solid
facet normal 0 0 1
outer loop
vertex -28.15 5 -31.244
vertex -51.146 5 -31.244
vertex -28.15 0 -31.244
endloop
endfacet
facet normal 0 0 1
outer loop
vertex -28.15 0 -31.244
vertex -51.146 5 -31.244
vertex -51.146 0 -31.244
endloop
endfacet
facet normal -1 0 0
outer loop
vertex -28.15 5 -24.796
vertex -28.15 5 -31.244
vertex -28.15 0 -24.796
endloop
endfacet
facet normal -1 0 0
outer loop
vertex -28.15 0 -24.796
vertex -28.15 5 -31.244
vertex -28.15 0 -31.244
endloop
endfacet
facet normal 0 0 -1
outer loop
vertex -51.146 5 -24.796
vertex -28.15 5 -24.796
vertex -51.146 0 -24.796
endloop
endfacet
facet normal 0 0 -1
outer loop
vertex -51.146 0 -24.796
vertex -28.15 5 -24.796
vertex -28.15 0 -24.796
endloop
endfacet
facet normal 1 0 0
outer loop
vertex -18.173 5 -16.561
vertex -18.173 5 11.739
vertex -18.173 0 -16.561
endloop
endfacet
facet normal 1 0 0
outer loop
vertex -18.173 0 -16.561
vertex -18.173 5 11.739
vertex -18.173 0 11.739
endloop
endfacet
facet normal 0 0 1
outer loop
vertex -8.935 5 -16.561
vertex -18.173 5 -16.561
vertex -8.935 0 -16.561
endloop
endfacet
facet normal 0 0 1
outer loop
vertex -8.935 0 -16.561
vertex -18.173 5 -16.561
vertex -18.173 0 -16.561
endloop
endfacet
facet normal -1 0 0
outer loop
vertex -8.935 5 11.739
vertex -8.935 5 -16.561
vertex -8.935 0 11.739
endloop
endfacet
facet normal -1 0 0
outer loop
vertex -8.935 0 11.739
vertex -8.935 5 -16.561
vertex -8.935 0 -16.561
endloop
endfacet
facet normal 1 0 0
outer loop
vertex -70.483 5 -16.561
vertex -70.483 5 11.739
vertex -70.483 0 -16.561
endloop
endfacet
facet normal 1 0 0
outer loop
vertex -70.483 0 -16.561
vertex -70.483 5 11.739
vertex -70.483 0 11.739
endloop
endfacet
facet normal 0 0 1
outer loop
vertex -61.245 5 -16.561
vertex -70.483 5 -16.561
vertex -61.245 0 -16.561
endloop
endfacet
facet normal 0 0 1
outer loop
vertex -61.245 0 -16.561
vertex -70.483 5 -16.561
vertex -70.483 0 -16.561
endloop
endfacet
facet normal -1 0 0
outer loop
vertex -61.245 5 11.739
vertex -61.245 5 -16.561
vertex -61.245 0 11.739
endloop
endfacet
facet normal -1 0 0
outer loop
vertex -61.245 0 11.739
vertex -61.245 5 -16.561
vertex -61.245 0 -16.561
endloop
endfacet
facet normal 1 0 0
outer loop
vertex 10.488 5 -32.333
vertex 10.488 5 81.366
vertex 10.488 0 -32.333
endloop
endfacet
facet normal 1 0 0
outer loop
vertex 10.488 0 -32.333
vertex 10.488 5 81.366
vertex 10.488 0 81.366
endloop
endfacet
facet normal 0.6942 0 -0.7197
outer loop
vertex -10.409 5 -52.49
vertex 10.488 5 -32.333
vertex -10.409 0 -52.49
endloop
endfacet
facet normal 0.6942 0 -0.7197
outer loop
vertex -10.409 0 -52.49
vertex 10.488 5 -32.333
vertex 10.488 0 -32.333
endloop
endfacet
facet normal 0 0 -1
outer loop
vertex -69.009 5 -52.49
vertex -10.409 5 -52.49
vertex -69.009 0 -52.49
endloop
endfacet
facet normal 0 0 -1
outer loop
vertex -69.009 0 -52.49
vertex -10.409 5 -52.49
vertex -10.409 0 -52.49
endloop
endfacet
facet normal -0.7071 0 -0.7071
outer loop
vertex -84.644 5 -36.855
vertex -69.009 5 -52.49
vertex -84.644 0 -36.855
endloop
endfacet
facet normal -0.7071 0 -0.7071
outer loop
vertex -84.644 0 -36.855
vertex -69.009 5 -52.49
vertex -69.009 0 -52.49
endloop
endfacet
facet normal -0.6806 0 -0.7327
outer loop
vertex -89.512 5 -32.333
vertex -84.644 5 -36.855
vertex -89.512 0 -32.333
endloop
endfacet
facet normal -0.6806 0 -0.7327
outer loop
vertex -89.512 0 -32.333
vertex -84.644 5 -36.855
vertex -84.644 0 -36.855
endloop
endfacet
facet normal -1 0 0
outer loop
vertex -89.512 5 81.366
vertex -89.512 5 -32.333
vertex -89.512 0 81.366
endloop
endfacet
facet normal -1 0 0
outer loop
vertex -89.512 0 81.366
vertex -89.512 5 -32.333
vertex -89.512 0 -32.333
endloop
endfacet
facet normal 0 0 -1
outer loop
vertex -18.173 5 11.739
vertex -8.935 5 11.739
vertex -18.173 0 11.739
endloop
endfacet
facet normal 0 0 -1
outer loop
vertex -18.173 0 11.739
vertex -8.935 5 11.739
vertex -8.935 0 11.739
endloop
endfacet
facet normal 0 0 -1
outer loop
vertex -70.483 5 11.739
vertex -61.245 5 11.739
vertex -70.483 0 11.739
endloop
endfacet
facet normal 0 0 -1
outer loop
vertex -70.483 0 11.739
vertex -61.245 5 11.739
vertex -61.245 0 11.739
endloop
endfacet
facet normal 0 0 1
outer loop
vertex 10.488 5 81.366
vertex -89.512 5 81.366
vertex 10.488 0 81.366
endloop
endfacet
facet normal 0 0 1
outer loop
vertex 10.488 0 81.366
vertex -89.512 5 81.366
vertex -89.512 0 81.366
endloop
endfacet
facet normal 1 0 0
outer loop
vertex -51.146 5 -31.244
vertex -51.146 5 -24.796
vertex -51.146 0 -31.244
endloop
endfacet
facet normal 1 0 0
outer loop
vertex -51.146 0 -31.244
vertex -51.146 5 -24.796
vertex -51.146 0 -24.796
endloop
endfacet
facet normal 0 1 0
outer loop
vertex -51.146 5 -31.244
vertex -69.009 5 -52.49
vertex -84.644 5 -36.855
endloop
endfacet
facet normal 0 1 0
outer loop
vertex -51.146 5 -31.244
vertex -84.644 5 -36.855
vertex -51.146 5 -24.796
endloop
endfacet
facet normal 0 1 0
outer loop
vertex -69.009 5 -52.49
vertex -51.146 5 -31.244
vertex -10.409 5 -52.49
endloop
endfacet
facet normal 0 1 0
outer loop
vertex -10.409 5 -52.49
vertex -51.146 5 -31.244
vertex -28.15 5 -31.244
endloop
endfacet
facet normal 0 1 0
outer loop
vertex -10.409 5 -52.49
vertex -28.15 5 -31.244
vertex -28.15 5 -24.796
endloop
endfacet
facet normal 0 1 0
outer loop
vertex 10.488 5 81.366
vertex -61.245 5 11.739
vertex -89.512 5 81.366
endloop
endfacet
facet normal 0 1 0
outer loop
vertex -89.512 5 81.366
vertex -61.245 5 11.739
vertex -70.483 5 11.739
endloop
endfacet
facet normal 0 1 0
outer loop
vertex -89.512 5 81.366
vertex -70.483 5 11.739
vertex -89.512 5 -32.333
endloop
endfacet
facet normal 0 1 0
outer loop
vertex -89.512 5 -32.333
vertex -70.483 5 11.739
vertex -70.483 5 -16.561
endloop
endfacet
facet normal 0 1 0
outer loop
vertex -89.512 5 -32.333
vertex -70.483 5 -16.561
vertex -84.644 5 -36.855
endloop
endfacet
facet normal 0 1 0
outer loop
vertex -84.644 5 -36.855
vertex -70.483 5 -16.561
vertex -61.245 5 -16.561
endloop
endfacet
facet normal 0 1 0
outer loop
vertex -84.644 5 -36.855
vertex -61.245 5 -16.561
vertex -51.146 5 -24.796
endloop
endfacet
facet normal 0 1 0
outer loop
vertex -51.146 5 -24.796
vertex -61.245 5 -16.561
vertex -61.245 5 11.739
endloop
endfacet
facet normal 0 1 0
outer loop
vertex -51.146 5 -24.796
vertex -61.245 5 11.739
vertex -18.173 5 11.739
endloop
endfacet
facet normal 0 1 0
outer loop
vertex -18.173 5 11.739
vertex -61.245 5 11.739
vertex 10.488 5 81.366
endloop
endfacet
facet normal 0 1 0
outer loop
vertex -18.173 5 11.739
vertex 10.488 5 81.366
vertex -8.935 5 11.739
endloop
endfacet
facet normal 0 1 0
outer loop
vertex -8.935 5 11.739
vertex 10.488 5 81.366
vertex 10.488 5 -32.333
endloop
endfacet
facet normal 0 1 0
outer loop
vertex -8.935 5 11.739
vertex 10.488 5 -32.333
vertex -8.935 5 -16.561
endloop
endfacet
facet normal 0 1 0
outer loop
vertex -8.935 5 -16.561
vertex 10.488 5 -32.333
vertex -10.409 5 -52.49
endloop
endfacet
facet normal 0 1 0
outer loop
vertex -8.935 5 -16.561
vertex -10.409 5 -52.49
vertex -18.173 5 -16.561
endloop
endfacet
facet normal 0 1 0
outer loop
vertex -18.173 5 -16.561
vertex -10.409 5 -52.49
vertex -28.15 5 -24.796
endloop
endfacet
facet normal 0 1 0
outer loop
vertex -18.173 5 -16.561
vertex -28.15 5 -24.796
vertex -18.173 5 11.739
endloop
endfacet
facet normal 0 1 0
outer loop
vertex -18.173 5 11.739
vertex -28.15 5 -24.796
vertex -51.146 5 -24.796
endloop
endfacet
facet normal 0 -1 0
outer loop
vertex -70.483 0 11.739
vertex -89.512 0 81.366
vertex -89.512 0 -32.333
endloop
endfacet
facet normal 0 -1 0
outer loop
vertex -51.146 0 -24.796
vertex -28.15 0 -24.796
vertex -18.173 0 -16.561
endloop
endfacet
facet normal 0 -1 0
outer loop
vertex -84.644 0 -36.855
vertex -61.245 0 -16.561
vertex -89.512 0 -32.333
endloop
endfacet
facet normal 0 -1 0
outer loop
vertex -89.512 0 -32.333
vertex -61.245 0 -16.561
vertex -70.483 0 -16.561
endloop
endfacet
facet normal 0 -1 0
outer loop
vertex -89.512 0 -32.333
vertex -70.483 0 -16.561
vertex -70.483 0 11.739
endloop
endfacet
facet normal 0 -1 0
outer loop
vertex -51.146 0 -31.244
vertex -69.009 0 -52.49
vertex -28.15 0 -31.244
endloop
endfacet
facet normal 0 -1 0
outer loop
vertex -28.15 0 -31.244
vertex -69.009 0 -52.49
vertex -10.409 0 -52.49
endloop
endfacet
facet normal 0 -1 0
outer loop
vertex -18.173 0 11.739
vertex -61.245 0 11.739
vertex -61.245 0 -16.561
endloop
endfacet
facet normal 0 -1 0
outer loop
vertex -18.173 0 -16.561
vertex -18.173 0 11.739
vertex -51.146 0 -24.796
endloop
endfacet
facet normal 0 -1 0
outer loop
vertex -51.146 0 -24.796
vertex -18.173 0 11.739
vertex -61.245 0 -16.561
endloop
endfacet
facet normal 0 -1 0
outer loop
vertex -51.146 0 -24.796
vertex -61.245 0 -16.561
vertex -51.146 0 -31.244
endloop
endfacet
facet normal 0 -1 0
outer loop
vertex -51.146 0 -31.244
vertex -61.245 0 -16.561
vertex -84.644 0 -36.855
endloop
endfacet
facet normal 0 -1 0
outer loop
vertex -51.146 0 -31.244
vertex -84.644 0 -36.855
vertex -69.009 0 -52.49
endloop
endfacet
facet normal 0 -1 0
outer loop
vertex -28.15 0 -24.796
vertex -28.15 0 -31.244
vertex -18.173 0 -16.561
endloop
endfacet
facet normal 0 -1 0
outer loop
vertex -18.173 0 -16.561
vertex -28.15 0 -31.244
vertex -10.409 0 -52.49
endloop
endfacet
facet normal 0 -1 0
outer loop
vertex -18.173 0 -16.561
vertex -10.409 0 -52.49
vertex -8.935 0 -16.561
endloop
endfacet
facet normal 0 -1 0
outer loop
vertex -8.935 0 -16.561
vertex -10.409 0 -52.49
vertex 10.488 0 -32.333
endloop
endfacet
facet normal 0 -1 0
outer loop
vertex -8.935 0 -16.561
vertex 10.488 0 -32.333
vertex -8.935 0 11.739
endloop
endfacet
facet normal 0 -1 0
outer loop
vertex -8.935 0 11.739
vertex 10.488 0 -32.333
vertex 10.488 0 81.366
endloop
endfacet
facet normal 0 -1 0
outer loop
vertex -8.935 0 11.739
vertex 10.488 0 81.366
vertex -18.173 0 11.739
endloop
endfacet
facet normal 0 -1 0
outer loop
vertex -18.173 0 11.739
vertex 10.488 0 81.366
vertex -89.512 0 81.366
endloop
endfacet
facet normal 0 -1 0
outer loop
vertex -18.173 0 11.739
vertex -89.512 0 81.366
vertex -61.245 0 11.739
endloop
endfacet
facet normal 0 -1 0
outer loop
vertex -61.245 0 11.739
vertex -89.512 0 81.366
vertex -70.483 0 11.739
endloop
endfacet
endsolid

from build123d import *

# Parameters (mm, degrees)
SKETCH1_W           = 9.23810595
SKETCH1_H           = 28.3
SKETCH1_W_2         = 22.995276356
SKETCH1_H_2         = 6.447183695
BOSS_EXTRUDE1_DEPTH = 5


with BuildPart() as part:
    # Sketch1 → Boss-Extrude1 (new body)
    with BuildSketch(Plane(origin=(0, 0, 0), x_dir=(1, 0, 0), z_dir=(0, 1, 0))):
        Polygon((-84.64385089, 36.855414935), (-89.512192258, 32.332884436), (-89.512192258, -81.365540516), (10.487807742, -81.365540516), (10.487807742, 32.332884436), (-10.408953914, 52.490004223), (-69.009261602, 52.490004223), align=None)
        with Locations((-65.864023501, 2.411444329)):
            Rectangle(SKETCH1_W, SKETCH1_H, mode=Mode.SUBTRACT)
        with Locations((-39.648008145, 28.020058308)):
            Rectangle(SKETCH1_W_2, SKETCH1_H_2, mode=Mode.SUBTRACT)
        with Locations((-13.554192015, 2.411444329)):
            Rectangle(SKETCH1_W, SKETCH1_H, mode=Mode.SUBTRACT)
    extrude(amount=BOSS_EXTRUDE1_DEPTH)


solid = part.part
